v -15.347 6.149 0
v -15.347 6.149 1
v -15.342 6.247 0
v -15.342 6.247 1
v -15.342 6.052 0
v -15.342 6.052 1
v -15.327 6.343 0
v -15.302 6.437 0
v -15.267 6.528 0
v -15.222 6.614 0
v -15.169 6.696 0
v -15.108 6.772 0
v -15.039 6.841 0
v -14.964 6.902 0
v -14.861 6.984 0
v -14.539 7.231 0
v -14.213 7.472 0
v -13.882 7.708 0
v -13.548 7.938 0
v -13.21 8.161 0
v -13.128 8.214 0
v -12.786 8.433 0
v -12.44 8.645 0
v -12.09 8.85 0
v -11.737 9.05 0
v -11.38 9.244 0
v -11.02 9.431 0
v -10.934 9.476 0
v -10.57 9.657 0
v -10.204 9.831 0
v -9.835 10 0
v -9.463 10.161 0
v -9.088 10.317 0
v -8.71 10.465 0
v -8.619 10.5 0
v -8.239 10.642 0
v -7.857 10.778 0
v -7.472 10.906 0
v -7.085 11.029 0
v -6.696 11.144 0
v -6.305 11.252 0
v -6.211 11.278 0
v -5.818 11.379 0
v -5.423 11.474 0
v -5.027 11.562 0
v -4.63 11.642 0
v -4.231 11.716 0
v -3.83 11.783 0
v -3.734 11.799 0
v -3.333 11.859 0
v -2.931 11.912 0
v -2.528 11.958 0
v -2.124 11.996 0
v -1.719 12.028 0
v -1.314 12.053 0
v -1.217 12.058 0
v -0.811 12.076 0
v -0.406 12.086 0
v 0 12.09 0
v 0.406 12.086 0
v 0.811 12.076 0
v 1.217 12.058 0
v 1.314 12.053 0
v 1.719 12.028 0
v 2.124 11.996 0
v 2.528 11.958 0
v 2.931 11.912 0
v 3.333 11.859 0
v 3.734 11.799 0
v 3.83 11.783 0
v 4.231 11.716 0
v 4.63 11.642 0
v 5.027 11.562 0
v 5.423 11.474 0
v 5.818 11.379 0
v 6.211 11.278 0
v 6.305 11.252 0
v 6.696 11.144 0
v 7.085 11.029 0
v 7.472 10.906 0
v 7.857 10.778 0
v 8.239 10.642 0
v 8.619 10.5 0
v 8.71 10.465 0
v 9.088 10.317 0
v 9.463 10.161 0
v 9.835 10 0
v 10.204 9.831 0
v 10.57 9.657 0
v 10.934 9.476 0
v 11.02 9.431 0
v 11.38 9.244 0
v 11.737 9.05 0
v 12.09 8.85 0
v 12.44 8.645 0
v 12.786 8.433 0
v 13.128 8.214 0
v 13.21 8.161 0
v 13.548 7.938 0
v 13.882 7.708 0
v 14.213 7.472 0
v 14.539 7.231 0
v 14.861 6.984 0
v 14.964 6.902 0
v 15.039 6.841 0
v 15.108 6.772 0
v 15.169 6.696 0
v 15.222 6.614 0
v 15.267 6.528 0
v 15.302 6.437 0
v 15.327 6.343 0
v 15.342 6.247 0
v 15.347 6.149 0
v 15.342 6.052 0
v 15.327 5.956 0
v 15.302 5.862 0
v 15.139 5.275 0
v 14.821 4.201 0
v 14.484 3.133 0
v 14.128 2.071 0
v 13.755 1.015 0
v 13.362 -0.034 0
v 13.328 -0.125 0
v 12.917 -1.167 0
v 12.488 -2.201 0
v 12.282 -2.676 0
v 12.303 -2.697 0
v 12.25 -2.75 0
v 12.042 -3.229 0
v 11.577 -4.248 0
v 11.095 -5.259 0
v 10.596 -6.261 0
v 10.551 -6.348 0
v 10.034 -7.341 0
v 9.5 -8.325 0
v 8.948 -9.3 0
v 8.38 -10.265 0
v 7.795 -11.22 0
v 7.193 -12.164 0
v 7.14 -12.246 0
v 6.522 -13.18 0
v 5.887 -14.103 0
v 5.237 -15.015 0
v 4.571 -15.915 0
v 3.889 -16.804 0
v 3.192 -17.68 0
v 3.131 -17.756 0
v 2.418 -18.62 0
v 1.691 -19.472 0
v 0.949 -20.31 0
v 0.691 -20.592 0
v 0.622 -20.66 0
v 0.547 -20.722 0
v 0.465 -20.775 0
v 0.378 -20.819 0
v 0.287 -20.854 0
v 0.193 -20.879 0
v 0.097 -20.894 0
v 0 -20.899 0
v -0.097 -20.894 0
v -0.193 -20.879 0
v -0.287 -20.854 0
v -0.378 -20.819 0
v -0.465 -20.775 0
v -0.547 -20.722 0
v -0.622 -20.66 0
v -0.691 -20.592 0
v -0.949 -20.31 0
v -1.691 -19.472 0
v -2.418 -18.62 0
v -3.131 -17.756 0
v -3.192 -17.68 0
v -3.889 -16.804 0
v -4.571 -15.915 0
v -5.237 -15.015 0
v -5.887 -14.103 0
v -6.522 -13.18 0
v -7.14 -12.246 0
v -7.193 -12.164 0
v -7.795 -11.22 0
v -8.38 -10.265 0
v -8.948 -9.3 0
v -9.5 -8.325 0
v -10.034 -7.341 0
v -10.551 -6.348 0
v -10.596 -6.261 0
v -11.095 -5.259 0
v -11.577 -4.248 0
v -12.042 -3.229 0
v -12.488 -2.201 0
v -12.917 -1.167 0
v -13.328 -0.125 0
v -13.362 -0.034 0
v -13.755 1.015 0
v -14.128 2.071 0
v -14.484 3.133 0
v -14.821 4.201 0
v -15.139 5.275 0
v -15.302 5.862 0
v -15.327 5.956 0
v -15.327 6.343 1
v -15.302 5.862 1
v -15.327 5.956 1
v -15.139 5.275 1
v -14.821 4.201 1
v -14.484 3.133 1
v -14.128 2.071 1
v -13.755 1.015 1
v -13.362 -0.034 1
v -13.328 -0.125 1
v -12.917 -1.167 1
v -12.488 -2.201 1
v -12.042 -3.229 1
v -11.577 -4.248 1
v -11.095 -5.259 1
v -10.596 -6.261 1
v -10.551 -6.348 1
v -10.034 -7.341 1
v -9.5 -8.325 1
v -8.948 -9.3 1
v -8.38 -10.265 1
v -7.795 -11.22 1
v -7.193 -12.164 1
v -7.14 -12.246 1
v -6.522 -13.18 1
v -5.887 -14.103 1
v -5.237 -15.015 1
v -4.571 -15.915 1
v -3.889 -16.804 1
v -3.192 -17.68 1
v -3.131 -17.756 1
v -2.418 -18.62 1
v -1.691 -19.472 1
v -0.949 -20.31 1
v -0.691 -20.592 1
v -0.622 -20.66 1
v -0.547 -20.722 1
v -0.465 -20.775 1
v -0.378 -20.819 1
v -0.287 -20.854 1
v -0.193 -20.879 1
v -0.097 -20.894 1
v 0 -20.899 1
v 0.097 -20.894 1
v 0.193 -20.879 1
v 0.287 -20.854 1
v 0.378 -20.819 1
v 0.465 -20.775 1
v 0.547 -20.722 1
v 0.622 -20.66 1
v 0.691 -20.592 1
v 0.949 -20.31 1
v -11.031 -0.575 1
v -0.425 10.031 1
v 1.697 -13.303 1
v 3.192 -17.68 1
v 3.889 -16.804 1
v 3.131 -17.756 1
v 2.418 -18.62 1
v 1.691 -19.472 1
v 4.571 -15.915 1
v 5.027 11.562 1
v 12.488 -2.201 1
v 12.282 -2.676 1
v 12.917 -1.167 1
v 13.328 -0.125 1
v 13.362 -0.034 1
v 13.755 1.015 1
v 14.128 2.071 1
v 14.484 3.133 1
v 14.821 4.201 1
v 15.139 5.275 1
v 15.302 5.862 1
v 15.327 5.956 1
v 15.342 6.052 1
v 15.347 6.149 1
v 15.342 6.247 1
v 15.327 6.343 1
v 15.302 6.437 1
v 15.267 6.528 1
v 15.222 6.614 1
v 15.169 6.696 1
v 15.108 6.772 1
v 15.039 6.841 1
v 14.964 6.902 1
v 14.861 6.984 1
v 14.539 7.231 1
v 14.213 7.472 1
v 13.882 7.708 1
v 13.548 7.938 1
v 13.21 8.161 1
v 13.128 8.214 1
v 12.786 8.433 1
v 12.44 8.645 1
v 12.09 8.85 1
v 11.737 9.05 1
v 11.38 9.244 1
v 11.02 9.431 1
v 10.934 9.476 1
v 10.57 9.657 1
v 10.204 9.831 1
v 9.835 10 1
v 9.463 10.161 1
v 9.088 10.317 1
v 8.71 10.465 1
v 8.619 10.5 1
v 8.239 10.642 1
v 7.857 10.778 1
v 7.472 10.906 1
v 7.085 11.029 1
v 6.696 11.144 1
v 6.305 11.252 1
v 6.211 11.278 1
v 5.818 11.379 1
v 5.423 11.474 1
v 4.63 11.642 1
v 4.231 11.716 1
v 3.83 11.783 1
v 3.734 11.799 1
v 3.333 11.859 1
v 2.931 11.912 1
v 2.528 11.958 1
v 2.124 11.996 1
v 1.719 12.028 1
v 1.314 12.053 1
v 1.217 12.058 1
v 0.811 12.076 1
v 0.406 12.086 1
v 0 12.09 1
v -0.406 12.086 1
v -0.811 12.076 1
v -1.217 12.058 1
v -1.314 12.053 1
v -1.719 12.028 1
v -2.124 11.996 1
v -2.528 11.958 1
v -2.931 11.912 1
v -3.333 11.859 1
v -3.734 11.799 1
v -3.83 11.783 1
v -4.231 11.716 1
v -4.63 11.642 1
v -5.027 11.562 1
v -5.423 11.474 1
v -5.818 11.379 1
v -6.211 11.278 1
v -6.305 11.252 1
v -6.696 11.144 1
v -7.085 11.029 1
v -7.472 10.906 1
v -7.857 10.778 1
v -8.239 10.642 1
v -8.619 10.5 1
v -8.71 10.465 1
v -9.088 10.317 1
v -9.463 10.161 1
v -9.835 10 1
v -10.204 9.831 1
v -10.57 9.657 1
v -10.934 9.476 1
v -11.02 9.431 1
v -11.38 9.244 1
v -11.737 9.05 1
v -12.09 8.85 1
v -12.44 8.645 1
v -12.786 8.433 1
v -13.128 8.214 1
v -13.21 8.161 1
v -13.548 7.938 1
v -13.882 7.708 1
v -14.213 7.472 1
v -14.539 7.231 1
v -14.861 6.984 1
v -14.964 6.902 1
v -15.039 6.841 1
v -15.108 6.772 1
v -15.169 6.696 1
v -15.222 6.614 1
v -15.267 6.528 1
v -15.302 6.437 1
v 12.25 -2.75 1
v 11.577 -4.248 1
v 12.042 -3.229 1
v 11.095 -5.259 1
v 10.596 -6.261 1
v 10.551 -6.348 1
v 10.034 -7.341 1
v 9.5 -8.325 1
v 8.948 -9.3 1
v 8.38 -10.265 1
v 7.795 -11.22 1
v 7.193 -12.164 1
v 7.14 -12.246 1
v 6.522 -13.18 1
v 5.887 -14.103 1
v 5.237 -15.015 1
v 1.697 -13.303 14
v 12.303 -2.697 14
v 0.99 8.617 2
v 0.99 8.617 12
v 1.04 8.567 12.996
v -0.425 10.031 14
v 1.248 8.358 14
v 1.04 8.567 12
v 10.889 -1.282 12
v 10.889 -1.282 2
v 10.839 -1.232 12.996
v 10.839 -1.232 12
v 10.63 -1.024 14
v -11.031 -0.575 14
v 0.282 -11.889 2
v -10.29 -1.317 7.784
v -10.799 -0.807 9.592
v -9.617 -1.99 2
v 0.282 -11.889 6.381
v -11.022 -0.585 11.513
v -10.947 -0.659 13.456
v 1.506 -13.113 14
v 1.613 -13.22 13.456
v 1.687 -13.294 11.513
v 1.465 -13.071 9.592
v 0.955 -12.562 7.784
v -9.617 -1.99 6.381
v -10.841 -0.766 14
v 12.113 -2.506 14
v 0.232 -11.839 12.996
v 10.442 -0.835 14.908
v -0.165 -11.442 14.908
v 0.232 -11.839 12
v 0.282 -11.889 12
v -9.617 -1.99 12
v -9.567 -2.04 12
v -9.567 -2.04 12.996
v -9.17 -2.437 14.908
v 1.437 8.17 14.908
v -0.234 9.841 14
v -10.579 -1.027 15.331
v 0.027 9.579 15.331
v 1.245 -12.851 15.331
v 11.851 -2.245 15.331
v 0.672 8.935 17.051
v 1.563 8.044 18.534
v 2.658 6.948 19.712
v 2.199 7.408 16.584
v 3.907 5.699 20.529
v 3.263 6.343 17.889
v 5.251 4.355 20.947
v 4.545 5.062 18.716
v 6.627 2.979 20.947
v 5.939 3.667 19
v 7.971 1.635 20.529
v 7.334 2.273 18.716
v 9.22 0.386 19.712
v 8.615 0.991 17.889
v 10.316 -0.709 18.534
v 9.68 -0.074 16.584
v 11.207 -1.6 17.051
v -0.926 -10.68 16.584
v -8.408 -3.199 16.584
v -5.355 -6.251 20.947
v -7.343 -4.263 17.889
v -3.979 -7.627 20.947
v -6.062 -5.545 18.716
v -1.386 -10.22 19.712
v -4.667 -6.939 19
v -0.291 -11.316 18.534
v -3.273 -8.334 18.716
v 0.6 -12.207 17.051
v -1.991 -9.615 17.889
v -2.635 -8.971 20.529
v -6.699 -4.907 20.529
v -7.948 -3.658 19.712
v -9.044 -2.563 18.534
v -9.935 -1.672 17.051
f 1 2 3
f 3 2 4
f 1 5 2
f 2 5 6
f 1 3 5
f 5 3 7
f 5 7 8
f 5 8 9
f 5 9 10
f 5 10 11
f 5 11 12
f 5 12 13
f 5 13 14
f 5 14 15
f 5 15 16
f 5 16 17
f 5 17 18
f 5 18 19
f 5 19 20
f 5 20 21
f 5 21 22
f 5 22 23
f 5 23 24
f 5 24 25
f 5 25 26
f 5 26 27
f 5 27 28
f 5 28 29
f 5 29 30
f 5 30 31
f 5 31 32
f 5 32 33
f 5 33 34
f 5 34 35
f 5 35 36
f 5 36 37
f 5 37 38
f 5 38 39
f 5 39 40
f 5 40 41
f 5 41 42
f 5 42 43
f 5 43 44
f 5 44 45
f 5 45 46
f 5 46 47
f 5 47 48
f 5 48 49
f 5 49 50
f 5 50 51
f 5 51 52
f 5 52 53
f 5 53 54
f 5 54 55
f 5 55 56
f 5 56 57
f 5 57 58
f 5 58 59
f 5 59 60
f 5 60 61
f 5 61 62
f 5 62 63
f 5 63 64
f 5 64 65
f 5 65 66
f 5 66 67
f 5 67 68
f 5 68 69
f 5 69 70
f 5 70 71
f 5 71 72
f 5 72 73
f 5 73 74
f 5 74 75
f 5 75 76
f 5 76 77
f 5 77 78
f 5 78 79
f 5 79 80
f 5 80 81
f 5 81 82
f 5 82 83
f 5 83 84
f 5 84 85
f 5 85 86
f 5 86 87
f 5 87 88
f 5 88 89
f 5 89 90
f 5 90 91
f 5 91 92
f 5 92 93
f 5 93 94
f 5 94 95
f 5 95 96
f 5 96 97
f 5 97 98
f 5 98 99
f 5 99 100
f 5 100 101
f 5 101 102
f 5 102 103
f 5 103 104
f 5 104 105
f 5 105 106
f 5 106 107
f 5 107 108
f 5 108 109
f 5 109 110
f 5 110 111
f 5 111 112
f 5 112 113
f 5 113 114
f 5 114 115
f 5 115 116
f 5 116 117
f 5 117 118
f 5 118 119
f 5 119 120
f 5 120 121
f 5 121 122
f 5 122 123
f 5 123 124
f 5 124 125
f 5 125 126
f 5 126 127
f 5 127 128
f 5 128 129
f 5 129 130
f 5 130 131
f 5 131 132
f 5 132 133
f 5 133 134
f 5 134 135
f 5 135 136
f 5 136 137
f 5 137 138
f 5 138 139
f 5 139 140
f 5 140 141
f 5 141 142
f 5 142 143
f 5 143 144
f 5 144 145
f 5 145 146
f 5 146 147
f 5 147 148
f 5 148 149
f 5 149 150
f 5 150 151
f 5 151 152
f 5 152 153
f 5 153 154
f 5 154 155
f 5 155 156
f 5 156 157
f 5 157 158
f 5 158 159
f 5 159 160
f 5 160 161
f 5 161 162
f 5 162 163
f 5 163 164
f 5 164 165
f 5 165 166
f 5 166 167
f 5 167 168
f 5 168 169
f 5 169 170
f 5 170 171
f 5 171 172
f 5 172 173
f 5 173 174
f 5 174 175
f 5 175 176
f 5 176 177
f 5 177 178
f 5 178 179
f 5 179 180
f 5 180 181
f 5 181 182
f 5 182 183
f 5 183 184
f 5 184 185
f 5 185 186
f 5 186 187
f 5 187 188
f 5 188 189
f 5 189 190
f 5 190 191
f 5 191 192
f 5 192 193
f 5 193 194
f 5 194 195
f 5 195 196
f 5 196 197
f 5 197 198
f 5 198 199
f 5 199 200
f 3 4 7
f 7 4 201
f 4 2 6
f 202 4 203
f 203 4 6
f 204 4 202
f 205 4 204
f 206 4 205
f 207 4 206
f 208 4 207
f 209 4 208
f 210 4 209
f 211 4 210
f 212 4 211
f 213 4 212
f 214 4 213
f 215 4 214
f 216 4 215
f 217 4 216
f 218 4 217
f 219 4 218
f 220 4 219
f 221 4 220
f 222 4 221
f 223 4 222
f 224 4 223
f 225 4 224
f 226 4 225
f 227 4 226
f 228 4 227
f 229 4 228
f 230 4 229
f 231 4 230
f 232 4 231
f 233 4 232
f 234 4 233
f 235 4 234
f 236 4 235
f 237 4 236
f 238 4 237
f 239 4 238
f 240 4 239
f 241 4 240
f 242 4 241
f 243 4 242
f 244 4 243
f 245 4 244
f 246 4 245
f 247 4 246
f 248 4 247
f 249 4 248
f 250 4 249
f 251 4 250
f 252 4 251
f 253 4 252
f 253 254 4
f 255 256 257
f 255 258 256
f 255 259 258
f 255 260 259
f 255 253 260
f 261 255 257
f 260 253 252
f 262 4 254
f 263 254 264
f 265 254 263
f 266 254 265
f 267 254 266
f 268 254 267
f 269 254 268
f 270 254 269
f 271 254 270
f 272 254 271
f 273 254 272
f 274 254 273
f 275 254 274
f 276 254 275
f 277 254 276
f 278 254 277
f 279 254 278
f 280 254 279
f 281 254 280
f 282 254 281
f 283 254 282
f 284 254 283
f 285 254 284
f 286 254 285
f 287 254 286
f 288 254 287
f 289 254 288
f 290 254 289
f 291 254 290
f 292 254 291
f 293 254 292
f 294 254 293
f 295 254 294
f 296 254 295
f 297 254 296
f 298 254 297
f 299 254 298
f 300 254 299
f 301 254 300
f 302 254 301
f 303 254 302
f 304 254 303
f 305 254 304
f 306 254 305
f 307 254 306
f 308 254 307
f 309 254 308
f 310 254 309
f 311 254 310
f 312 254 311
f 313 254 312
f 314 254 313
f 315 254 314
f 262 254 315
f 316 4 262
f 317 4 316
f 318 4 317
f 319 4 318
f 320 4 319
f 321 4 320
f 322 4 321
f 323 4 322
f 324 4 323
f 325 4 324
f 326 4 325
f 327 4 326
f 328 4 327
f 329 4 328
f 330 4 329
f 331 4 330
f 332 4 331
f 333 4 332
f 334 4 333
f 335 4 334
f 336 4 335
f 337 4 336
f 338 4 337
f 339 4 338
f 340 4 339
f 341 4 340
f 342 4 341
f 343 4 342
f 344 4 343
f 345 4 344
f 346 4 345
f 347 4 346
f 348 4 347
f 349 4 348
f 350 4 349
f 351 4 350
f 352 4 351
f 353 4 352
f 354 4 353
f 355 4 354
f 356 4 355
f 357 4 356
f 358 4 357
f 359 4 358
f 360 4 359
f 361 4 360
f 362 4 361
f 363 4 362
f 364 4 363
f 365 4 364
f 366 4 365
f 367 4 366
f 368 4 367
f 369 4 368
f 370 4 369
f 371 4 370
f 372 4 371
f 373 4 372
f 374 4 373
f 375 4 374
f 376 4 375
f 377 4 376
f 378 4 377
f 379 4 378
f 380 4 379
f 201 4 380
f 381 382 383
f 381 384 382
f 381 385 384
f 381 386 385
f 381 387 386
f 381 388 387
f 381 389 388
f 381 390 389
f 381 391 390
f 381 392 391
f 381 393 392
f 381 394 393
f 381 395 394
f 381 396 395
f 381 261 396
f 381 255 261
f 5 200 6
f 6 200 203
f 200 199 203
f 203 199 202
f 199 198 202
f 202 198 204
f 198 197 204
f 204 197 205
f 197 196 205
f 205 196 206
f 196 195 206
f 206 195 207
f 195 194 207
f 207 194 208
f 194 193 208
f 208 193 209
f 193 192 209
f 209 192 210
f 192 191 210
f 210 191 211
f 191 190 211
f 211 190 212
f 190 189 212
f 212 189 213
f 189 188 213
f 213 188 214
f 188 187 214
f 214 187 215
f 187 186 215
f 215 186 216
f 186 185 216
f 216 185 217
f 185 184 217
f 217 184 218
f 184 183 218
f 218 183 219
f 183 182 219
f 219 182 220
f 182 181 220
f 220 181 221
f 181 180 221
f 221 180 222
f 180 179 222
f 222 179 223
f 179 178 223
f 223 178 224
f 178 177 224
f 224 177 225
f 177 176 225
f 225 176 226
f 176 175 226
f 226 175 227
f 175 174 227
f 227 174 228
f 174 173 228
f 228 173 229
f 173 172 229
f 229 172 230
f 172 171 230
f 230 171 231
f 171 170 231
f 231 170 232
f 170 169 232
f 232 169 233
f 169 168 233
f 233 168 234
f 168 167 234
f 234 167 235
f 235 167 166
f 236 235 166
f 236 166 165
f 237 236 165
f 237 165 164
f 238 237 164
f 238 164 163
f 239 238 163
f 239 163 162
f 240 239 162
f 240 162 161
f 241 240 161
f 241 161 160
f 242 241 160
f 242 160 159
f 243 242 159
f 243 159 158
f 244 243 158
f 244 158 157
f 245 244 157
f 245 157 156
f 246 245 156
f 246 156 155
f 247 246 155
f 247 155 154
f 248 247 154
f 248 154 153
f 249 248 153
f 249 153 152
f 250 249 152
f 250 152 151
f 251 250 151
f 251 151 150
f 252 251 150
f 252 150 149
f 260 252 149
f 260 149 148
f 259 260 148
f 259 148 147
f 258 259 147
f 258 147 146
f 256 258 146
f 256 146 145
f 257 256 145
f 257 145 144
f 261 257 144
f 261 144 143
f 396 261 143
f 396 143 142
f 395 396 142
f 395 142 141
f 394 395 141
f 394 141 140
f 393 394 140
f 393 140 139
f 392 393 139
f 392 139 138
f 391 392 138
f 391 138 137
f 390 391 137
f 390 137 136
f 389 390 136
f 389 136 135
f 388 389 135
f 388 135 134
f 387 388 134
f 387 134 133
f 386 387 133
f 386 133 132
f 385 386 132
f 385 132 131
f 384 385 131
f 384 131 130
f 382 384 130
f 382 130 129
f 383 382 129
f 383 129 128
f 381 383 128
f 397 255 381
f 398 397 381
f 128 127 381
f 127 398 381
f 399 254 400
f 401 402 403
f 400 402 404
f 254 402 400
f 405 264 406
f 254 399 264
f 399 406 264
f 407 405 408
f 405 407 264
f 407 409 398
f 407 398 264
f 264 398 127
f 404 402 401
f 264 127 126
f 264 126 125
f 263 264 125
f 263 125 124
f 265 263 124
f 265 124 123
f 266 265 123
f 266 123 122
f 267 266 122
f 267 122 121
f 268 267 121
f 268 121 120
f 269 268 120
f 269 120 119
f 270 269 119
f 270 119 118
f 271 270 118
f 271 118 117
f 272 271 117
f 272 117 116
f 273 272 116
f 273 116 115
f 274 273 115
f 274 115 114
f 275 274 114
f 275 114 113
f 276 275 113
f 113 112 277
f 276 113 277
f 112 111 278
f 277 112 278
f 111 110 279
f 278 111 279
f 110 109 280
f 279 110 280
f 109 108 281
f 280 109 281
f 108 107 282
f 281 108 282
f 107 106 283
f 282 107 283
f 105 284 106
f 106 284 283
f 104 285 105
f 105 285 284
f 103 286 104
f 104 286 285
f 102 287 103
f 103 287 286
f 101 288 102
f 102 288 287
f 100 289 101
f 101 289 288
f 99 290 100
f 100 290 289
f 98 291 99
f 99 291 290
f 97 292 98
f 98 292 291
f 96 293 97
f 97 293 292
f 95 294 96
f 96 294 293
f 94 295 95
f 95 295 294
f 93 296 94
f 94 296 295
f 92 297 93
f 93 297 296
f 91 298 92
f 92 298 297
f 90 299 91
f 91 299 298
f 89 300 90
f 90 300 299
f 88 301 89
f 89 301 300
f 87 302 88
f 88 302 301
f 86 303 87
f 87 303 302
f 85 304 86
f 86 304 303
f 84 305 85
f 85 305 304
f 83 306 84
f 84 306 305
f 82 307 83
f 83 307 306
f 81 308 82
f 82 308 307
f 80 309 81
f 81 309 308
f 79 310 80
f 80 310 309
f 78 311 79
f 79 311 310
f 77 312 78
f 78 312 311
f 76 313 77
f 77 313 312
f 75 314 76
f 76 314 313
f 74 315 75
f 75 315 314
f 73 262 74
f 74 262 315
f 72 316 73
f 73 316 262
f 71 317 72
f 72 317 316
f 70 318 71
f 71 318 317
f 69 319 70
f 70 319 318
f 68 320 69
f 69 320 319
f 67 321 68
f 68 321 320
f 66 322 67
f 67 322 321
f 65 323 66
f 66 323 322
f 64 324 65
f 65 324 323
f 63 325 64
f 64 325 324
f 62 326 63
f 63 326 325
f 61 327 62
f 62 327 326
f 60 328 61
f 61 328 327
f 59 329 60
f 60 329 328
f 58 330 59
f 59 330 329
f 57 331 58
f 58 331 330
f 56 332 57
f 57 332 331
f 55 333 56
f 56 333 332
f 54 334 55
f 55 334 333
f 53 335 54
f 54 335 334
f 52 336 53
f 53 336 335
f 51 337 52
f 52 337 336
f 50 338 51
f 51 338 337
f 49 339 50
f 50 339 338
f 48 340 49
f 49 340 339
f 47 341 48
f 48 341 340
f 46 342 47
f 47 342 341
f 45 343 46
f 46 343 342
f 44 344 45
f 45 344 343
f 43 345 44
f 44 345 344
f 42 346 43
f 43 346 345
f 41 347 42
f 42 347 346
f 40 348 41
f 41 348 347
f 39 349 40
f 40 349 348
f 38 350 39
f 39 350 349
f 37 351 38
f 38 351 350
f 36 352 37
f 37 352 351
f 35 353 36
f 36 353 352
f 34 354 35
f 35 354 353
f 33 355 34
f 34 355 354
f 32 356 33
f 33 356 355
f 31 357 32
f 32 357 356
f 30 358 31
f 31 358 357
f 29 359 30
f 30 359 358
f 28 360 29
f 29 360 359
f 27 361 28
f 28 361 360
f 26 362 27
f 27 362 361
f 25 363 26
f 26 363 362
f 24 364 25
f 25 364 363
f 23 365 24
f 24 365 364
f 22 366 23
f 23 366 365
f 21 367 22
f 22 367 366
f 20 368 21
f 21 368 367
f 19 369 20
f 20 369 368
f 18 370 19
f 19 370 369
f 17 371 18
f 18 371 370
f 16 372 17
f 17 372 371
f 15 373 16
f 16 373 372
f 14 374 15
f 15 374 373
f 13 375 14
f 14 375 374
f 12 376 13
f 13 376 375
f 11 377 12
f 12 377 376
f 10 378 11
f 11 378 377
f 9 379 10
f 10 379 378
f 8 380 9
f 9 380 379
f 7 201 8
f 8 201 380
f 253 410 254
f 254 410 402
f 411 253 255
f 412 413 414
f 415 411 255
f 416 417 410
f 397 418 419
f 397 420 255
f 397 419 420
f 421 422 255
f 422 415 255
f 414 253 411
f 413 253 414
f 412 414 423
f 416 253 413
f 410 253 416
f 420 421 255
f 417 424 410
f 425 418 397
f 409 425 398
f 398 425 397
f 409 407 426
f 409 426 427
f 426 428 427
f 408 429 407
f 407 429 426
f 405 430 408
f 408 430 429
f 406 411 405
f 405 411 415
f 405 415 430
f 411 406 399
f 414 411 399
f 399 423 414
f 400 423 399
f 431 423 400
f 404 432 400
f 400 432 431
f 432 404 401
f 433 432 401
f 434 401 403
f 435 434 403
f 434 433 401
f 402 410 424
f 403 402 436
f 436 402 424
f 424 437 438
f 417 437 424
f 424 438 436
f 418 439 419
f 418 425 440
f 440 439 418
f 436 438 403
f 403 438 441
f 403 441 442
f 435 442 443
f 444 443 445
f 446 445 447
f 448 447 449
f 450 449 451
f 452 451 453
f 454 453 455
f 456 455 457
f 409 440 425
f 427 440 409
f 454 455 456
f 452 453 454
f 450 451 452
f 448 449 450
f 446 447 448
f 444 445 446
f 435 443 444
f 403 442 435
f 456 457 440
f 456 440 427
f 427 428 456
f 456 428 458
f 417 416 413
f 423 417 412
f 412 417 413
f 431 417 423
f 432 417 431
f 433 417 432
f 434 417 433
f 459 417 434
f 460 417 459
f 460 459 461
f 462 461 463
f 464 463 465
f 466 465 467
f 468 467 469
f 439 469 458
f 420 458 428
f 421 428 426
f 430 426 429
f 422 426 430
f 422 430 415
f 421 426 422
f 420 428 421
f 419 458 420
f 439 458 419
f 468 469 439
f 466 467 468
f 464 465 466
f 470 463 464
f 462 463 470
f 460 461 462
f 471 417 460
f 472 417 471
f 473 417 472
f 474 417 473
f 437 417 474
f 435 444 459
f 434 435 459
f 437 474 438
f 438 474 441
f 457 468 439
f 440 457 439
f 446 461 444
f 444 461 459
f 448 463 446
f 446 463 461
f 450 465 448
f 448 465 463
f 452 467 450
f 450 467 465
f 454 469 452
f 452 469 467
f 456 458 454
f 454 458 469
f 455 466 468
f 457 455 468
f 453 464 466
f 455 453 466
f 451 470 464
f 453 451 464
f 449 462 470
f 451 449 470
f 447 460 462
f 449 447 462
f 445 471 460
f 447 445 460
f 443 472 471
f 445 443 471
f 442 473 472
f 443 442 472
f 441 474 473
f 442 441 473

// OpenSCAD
// file: utils/build_plate.scad
// Minimal build plate helper for browser customizer builds.
module build_plate(build_plate_selector=0, build_plate_manual_x=100, build_plate_manual_y=100) {
  // intentionally no-op in browser preview
}
// main file
//	PickPerfect by LoGan McCarthy 3/07/2012 LM
// A thanks to OpenSCAD manual and MakerBlock Customizer Template for the tips and HarlanDMii for Write.scad.




larg=15;
comp=14; // 14
esp=2;
alt=17;  // 17

use <utils/build_plate.scad>

use<Write.scad>
include <write/Write.scad>

//CUSTOMIZER VARIABLES

//	This section is displays the box options
//Pick Thickness 
z_thick = 2.5;	//	[1:Extra Lite, 1.5:Lite, 1.875:Medium, 2.5:Heavy, 3.75:Extra Heavy, 4.375:Extreme!]

//AdvancedGrip Technology
Grip = 0; // [1:Yes, 0:No]


//for display only, doesn't contribute to final object
build_plate_selector = 0; //[0:Replicator 2,1: Replicator,2:Thingomatic,3:Manual]

//when Build Plate Selector is set to "manual" this controls the build plate x dimension
build_plate_manual_x = 100; //[100:400]

//when Build Plate Selector is set to "manual" this controls the build plate y dimension
build_plate_manual_y = 100; //[100:400]

build_plate(build_plate_selector,build_plate_manual_x,build_plate_manual_y);

//CUSTOMIZER VARIABLES END


translate([esp*3.5,0-esp*4,0]) // normal
rotate([0,0,45]) 

//anel
difference()
{
	union()
	{
		translate([0-larg/2,0,0])
		cube([larg,comp+esp*2,alt+esp*2-comp/2]);
		rotate([0,90,0])
		translate([0-alt+comp/2-esp,comp/2+esp,0-larg/2])
		cylinder(r=comp/2+esp,h=larg);		
	}
	union()
	{
		translate([0-larg/2-esp,esp,esp])
		cube([larg+esp*2,comp,alt-comp/2]);
		translate([0-larg/2,esp,esp])

		rotate([0,90,0])
		translate([0-alt+comp/2,comp/2,0-esp])
		cylinder(r=comp/2,h=larg+esp*2);		
	}
}


//PickPerfect


scale(v = [.93,.93, z_thick]) {

union() {
color("darkorange")

//error correct
	scale(v = [1,1,.8]) {
minkowski()
{

translate([0,25,0])
	
		intersection() {
			translate([-51,0,0]) cylinder($fn=360,.4,69,69);
			translate([51,0,0]) cylinder($fn=360,.4,69,69);
			translate([0,-38,0]) cylinder($fn=360,.4,25,25);
 }
 cylinder($fn=60,r=1,h=.1);}
}
}

//TOP GRIP
color("gold")

if(Grip==1){
translate([0,0,-1.61]) {
difference() {
translate([0,23,2])
	
		intersection() {
			translate([-51,0,0]) cylinder($fn=260,.2,67,66);
			translate([51,0,0]) cylinder($fn=260,.2,67,66);
			translate([0,-38,0]) cylinder($fn=260,.2,25,24);}

			translate([0,-15,0]) cylinder($fn=260,3,16,25);}
}


//BOTTOM GRIP
translate([0,-4,-1.61]) {
difference() {
translate([0,23,2])
	
		intersection() {
			translate([-51,0,0]) cylinder($fn=260,.2,65,64);
			translate([51,0,0]) cylinder($fn=260,.2,65,64);
			translate([0,-38,0]) cylinder($fn=260,.2,23,22);}

//use<Write.scad>


			translate([0,-15,0]) cylinder($fn=260,3,14,23);}
}
}



	// Name

//XL

	if(z_thick==1){

	translate([0,-3,.445]) color("darkred") write("XL",t=.1,h=6,font="knewave.dxf",center=true);}

//L

	if(z_thick==1.5){

	translate([0,-3,.445]) color("darkred") write("Lite",t=.1,h=5,font="knewave.dxf",center=true);}

//M

	if(z_thick==1.875){

	translate([0,-3,.445]) color("darkred") write("M",t=.1,h=6,font="knewave.dxf",center=true);}

//H

	if(z_thick==2.5){

	translate([0,-3,.445]) color("darkred") write("H",t=.1,h=6,font="knewave.dxf",center=true);}

//XH

	if(z_thick==3.75){

	translate([0,-3,.445]) color("darkred") write("XH",t=.1,h=6,font="knewave.dxf",center=true);}

//X

	if(z_thick==4.375){

	translate([0,-3,.445]) color("darkred") write("X",t=.1,h=6,font="knewave.dxf",center=true);}
}
